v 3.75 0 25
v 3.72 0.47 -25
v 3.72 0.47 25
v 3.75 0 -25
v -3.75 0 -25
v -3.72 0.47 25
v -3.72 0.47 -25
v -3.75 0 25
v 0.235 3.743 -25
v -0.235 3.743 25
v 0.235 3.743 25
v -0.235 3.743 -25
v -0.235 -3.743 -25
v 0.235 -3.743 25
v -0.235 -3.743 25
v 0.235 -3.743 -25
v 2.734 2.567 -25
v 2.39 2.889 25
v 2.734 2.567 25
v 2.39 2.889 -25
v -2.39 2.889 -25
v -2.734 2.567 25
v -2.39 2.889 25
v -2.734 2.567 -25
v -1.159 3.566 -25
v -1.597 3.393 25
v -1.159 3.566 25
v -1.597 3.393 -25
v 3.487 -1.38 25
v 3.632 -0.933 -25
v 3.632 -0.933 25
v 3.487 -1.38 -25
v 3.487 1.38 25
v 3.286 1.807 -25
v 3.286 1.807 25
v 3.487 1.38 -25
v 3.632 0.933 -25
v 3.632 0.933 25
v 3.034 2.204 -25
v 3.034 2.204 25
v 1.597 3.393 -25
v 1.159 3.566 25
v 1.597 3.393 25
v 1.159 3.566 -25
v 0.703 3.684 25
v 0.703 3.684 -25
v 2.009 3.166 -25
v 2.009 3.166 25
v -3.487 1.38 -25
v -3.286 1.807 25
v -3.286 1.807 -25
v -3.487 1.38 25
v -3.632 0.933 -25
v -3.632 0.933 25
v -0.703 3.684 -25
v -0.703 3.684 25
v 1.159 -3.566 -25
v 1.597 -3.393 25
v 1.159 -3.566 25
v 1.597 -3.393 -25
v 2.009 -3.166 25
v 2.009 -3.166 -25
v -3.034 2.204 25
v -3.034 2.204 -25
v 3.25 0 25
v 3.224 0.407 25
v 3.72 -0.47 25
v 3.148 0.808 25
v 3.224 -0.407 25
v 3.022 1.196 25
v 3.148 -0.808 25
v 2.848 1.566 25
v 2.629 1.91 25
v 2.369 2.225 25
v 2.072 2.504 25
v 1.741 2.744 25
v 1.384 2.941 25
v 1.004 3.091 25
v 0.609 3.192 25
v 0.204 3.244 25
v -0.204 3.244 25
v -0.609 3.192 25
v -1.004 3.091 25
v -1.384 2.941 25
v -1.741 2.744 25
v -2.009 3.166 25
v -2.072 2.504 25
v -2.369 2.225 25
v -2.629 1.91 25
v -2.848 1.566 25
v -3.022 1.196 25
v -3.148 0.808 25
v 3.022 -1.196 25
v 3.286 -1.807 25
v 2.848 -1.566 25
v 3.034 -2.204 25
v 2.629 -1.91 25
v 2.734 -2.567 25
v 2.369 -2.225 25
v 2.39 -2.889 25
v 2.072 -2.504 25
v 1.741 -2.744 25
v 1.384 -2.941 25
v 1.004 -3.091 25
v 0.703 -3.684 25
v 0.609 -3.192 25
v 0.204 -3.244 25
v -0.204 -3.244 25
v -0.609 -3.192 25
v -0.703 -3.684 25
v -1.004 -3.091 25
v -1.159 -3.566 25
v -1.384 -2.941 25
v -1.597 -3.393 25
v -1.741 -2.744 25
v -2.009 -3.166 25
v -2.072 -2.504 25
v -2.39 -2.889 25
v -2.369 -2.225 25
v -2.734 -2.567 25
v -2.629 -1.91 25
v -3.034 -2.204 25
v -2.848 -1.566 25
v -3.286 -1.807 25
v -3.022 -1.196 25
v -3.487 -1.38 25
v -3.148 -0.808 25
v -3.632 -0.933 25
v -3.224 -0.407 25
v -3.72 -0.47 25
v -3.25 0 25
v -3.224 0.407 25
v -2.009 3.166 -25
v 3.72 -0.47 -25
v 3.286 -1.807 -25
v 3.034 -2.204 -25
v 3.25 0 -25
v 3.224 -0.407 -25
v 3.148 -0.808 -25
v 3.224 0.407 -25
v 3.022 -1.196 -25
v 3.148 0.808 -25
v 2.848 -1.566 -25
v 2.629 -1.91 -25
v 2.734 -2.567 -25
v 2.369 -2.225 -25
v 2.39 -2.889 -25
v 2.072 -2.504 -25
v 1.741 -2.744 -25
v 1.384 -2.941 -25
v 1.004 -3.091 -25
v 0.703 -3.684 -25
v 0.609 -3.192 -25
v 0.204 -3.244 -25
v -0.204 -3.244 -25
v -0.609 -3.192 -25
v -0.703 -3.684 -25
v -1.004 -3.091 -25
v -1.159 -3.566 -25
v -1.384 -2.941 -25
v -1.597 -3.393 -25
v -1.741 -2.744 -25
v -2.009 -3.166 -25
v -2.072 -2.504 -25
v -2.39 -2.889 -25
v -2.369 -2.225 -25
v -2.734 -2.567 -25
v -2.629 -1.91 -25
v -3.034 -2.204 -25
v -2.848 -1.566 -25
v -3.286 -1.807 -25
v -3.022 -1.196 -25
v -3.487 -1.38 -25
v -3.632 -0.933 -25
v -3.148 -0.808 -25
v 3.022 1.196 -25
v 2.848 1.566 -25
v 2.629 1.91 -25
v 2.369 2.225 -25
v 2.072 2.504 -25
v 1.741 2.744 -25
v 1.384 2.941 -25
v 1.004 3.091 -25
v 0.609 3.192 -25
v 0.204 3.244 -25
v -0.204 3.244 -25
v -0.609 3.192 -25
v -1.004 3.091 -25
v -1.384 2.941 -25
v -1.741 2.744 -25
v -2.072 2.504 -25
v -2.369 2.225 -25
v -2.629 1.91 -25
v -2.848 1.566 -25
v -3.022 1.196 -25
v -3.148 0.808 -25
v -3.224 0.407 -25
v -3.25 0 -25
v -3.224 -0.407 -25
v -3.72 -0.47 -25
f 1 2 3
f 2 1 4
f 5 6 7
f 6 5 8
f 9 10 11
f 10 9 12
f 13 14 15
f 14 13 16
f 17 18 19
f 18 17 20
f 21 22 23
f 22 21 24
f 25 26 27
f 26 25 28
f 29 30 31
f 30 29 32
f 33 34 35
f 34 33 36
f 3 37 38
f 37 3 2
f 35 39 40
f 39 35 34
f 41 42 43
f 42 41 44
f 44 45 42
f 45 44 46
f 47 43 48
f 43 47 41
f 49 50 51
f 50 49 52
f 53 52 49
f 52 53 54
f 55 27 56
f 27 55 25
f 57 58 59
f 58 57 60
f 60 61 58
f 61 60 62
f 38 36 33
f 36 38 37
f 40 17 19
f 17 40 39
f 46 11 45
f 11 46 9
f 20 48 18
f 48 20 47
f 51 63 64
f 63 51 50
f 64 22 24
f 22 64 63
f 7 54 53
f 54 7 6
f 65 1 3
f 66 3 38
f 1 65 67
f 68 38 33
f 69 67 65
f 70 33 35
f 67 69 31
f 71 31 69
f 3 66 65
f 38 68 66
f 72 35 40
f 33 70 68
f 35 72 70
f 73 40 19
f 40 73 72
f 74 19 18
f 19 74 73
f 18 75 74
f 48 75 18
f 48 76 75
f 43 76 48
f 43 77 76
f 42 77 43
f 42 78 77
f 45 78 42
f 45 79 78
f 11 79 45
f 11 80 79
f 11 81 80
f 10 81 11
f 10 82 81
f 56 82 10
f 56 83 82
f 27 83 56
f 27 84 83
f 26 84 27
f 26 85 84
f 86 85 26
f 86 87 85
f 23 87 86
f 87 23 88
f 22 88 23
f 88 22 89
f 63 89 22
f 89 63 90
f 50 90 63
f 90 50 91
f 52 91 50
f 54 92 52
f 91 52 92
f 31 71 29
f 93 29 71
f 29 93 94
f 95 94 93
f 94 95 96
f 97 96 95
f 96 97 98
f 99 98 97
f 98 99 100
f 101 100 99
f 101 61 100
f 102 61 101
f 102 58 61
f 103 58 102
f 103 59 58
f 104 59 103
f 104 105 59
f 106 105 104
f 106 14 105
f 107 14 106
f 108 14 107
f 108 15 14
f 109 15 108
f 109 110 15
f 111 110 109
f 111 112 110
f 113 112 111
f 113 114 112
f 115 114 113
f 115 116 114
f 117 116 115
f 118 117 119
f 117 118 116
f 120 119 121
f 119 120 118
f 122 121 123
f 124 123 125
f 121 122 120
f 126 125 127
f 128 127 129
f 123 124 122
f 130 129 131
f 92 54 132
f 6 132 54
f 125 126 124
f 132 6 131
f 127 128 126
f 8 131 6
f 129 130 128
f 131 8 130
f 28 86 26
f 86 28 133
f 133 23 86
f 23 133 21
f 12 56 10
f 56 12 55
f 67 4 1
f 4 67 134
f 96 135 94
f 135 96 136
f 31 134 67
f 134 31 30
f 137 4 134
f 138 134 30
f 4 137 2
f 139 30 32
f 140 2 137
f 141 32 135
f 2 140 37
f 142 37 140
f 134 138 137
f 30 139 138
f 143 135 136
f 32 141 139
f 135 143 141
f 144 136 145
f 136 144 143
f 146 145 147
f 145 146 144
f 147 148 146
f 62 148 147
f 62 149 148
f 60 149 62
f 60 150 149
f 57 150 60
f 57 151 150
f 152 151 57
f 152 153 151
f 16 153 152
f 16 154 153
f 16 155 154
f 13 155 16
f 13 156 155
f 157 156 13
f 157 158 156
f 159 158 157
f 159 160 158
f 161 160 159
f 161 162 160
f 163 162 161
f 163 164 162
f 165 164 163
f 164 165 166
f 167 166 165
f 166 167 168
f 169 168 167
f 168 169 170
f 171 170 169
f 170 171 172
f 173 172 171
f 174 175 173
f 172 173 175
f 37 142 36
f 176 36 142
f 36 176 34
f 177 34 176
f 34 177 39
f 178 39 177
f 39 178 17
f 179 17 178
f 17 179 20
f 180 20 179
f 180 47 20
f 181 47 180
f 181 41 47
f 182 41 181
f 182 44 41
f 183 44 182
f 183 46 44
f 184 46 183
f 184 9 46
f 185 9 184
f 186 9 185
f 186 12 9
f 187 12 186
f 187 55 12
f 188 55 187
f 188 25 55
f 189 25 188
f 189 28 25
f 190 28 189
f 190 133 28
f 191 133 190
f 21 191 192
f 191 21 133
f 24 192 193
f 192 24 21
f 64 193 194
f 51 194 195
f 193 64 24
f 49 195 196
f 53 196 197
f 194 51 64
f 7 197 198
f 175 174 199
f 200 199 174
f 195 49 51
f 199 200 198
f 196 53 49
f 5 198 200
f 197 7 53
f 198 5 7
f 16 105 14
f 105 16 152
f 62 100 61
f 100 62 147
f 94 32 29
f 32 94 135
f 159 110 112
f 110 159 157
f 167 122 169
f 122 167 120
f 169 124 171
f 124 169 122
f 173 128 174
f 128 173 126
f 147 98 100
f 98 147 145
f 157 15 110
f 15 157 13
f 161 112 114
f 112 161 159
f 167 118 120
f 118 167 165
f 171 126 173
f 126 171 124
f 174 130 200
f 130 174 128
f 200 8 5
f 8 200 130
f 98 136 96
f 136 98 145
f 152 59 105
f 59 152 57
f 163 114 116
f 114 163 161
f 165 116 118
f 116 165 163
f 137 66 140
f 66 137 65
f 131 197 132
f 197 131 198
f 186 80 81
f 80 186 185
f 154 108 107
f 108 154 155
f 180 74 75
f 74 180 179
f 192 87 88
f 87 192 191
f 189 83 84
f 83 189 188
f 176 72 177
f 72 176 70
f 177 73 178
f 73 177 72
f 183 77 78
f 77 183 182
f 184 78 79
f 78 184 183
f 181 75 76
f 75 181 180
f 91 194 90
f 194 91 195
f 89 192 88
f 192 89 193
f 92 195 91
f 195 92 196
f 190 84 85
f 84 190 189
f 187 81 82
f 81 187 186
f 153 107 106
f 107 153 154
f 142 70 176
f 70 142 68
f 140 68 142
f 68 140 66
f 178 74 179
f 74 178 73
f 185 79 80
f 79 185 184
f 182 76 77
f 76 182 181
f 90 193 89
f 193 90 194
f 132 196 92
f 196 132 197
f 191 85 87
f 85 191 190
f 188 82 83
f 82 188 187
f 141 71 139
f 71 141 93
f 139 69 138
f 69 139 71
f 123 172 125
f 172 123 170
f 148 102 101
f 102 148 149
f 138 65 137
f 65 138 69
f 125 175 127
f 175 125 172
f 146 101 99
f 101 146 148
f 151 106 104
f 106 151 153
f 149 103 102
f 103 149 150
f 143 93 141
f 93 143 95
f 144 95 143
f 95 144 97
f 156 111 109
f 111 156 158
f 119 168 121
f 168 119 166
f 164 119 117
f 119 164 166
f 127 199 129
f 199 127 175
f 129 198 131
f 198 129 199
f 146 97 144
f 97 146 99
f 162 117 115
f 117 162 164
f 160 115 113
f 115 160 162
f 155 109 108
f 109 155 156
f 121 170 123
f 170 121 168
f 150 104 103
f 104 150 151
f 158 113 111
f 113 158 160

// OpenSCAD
$fn = 50;


difference() {
	union() {
		translate(v = [0, 0, -25.0000000000]) {
			cylinder(h = 50, r = 3.7500000000);
		}
	}
	union() {
		translate(v = [0, 0, -100.0000000000]) {
			cylinder(h = 200, r = 3.2500000000);
		}
	}
}
